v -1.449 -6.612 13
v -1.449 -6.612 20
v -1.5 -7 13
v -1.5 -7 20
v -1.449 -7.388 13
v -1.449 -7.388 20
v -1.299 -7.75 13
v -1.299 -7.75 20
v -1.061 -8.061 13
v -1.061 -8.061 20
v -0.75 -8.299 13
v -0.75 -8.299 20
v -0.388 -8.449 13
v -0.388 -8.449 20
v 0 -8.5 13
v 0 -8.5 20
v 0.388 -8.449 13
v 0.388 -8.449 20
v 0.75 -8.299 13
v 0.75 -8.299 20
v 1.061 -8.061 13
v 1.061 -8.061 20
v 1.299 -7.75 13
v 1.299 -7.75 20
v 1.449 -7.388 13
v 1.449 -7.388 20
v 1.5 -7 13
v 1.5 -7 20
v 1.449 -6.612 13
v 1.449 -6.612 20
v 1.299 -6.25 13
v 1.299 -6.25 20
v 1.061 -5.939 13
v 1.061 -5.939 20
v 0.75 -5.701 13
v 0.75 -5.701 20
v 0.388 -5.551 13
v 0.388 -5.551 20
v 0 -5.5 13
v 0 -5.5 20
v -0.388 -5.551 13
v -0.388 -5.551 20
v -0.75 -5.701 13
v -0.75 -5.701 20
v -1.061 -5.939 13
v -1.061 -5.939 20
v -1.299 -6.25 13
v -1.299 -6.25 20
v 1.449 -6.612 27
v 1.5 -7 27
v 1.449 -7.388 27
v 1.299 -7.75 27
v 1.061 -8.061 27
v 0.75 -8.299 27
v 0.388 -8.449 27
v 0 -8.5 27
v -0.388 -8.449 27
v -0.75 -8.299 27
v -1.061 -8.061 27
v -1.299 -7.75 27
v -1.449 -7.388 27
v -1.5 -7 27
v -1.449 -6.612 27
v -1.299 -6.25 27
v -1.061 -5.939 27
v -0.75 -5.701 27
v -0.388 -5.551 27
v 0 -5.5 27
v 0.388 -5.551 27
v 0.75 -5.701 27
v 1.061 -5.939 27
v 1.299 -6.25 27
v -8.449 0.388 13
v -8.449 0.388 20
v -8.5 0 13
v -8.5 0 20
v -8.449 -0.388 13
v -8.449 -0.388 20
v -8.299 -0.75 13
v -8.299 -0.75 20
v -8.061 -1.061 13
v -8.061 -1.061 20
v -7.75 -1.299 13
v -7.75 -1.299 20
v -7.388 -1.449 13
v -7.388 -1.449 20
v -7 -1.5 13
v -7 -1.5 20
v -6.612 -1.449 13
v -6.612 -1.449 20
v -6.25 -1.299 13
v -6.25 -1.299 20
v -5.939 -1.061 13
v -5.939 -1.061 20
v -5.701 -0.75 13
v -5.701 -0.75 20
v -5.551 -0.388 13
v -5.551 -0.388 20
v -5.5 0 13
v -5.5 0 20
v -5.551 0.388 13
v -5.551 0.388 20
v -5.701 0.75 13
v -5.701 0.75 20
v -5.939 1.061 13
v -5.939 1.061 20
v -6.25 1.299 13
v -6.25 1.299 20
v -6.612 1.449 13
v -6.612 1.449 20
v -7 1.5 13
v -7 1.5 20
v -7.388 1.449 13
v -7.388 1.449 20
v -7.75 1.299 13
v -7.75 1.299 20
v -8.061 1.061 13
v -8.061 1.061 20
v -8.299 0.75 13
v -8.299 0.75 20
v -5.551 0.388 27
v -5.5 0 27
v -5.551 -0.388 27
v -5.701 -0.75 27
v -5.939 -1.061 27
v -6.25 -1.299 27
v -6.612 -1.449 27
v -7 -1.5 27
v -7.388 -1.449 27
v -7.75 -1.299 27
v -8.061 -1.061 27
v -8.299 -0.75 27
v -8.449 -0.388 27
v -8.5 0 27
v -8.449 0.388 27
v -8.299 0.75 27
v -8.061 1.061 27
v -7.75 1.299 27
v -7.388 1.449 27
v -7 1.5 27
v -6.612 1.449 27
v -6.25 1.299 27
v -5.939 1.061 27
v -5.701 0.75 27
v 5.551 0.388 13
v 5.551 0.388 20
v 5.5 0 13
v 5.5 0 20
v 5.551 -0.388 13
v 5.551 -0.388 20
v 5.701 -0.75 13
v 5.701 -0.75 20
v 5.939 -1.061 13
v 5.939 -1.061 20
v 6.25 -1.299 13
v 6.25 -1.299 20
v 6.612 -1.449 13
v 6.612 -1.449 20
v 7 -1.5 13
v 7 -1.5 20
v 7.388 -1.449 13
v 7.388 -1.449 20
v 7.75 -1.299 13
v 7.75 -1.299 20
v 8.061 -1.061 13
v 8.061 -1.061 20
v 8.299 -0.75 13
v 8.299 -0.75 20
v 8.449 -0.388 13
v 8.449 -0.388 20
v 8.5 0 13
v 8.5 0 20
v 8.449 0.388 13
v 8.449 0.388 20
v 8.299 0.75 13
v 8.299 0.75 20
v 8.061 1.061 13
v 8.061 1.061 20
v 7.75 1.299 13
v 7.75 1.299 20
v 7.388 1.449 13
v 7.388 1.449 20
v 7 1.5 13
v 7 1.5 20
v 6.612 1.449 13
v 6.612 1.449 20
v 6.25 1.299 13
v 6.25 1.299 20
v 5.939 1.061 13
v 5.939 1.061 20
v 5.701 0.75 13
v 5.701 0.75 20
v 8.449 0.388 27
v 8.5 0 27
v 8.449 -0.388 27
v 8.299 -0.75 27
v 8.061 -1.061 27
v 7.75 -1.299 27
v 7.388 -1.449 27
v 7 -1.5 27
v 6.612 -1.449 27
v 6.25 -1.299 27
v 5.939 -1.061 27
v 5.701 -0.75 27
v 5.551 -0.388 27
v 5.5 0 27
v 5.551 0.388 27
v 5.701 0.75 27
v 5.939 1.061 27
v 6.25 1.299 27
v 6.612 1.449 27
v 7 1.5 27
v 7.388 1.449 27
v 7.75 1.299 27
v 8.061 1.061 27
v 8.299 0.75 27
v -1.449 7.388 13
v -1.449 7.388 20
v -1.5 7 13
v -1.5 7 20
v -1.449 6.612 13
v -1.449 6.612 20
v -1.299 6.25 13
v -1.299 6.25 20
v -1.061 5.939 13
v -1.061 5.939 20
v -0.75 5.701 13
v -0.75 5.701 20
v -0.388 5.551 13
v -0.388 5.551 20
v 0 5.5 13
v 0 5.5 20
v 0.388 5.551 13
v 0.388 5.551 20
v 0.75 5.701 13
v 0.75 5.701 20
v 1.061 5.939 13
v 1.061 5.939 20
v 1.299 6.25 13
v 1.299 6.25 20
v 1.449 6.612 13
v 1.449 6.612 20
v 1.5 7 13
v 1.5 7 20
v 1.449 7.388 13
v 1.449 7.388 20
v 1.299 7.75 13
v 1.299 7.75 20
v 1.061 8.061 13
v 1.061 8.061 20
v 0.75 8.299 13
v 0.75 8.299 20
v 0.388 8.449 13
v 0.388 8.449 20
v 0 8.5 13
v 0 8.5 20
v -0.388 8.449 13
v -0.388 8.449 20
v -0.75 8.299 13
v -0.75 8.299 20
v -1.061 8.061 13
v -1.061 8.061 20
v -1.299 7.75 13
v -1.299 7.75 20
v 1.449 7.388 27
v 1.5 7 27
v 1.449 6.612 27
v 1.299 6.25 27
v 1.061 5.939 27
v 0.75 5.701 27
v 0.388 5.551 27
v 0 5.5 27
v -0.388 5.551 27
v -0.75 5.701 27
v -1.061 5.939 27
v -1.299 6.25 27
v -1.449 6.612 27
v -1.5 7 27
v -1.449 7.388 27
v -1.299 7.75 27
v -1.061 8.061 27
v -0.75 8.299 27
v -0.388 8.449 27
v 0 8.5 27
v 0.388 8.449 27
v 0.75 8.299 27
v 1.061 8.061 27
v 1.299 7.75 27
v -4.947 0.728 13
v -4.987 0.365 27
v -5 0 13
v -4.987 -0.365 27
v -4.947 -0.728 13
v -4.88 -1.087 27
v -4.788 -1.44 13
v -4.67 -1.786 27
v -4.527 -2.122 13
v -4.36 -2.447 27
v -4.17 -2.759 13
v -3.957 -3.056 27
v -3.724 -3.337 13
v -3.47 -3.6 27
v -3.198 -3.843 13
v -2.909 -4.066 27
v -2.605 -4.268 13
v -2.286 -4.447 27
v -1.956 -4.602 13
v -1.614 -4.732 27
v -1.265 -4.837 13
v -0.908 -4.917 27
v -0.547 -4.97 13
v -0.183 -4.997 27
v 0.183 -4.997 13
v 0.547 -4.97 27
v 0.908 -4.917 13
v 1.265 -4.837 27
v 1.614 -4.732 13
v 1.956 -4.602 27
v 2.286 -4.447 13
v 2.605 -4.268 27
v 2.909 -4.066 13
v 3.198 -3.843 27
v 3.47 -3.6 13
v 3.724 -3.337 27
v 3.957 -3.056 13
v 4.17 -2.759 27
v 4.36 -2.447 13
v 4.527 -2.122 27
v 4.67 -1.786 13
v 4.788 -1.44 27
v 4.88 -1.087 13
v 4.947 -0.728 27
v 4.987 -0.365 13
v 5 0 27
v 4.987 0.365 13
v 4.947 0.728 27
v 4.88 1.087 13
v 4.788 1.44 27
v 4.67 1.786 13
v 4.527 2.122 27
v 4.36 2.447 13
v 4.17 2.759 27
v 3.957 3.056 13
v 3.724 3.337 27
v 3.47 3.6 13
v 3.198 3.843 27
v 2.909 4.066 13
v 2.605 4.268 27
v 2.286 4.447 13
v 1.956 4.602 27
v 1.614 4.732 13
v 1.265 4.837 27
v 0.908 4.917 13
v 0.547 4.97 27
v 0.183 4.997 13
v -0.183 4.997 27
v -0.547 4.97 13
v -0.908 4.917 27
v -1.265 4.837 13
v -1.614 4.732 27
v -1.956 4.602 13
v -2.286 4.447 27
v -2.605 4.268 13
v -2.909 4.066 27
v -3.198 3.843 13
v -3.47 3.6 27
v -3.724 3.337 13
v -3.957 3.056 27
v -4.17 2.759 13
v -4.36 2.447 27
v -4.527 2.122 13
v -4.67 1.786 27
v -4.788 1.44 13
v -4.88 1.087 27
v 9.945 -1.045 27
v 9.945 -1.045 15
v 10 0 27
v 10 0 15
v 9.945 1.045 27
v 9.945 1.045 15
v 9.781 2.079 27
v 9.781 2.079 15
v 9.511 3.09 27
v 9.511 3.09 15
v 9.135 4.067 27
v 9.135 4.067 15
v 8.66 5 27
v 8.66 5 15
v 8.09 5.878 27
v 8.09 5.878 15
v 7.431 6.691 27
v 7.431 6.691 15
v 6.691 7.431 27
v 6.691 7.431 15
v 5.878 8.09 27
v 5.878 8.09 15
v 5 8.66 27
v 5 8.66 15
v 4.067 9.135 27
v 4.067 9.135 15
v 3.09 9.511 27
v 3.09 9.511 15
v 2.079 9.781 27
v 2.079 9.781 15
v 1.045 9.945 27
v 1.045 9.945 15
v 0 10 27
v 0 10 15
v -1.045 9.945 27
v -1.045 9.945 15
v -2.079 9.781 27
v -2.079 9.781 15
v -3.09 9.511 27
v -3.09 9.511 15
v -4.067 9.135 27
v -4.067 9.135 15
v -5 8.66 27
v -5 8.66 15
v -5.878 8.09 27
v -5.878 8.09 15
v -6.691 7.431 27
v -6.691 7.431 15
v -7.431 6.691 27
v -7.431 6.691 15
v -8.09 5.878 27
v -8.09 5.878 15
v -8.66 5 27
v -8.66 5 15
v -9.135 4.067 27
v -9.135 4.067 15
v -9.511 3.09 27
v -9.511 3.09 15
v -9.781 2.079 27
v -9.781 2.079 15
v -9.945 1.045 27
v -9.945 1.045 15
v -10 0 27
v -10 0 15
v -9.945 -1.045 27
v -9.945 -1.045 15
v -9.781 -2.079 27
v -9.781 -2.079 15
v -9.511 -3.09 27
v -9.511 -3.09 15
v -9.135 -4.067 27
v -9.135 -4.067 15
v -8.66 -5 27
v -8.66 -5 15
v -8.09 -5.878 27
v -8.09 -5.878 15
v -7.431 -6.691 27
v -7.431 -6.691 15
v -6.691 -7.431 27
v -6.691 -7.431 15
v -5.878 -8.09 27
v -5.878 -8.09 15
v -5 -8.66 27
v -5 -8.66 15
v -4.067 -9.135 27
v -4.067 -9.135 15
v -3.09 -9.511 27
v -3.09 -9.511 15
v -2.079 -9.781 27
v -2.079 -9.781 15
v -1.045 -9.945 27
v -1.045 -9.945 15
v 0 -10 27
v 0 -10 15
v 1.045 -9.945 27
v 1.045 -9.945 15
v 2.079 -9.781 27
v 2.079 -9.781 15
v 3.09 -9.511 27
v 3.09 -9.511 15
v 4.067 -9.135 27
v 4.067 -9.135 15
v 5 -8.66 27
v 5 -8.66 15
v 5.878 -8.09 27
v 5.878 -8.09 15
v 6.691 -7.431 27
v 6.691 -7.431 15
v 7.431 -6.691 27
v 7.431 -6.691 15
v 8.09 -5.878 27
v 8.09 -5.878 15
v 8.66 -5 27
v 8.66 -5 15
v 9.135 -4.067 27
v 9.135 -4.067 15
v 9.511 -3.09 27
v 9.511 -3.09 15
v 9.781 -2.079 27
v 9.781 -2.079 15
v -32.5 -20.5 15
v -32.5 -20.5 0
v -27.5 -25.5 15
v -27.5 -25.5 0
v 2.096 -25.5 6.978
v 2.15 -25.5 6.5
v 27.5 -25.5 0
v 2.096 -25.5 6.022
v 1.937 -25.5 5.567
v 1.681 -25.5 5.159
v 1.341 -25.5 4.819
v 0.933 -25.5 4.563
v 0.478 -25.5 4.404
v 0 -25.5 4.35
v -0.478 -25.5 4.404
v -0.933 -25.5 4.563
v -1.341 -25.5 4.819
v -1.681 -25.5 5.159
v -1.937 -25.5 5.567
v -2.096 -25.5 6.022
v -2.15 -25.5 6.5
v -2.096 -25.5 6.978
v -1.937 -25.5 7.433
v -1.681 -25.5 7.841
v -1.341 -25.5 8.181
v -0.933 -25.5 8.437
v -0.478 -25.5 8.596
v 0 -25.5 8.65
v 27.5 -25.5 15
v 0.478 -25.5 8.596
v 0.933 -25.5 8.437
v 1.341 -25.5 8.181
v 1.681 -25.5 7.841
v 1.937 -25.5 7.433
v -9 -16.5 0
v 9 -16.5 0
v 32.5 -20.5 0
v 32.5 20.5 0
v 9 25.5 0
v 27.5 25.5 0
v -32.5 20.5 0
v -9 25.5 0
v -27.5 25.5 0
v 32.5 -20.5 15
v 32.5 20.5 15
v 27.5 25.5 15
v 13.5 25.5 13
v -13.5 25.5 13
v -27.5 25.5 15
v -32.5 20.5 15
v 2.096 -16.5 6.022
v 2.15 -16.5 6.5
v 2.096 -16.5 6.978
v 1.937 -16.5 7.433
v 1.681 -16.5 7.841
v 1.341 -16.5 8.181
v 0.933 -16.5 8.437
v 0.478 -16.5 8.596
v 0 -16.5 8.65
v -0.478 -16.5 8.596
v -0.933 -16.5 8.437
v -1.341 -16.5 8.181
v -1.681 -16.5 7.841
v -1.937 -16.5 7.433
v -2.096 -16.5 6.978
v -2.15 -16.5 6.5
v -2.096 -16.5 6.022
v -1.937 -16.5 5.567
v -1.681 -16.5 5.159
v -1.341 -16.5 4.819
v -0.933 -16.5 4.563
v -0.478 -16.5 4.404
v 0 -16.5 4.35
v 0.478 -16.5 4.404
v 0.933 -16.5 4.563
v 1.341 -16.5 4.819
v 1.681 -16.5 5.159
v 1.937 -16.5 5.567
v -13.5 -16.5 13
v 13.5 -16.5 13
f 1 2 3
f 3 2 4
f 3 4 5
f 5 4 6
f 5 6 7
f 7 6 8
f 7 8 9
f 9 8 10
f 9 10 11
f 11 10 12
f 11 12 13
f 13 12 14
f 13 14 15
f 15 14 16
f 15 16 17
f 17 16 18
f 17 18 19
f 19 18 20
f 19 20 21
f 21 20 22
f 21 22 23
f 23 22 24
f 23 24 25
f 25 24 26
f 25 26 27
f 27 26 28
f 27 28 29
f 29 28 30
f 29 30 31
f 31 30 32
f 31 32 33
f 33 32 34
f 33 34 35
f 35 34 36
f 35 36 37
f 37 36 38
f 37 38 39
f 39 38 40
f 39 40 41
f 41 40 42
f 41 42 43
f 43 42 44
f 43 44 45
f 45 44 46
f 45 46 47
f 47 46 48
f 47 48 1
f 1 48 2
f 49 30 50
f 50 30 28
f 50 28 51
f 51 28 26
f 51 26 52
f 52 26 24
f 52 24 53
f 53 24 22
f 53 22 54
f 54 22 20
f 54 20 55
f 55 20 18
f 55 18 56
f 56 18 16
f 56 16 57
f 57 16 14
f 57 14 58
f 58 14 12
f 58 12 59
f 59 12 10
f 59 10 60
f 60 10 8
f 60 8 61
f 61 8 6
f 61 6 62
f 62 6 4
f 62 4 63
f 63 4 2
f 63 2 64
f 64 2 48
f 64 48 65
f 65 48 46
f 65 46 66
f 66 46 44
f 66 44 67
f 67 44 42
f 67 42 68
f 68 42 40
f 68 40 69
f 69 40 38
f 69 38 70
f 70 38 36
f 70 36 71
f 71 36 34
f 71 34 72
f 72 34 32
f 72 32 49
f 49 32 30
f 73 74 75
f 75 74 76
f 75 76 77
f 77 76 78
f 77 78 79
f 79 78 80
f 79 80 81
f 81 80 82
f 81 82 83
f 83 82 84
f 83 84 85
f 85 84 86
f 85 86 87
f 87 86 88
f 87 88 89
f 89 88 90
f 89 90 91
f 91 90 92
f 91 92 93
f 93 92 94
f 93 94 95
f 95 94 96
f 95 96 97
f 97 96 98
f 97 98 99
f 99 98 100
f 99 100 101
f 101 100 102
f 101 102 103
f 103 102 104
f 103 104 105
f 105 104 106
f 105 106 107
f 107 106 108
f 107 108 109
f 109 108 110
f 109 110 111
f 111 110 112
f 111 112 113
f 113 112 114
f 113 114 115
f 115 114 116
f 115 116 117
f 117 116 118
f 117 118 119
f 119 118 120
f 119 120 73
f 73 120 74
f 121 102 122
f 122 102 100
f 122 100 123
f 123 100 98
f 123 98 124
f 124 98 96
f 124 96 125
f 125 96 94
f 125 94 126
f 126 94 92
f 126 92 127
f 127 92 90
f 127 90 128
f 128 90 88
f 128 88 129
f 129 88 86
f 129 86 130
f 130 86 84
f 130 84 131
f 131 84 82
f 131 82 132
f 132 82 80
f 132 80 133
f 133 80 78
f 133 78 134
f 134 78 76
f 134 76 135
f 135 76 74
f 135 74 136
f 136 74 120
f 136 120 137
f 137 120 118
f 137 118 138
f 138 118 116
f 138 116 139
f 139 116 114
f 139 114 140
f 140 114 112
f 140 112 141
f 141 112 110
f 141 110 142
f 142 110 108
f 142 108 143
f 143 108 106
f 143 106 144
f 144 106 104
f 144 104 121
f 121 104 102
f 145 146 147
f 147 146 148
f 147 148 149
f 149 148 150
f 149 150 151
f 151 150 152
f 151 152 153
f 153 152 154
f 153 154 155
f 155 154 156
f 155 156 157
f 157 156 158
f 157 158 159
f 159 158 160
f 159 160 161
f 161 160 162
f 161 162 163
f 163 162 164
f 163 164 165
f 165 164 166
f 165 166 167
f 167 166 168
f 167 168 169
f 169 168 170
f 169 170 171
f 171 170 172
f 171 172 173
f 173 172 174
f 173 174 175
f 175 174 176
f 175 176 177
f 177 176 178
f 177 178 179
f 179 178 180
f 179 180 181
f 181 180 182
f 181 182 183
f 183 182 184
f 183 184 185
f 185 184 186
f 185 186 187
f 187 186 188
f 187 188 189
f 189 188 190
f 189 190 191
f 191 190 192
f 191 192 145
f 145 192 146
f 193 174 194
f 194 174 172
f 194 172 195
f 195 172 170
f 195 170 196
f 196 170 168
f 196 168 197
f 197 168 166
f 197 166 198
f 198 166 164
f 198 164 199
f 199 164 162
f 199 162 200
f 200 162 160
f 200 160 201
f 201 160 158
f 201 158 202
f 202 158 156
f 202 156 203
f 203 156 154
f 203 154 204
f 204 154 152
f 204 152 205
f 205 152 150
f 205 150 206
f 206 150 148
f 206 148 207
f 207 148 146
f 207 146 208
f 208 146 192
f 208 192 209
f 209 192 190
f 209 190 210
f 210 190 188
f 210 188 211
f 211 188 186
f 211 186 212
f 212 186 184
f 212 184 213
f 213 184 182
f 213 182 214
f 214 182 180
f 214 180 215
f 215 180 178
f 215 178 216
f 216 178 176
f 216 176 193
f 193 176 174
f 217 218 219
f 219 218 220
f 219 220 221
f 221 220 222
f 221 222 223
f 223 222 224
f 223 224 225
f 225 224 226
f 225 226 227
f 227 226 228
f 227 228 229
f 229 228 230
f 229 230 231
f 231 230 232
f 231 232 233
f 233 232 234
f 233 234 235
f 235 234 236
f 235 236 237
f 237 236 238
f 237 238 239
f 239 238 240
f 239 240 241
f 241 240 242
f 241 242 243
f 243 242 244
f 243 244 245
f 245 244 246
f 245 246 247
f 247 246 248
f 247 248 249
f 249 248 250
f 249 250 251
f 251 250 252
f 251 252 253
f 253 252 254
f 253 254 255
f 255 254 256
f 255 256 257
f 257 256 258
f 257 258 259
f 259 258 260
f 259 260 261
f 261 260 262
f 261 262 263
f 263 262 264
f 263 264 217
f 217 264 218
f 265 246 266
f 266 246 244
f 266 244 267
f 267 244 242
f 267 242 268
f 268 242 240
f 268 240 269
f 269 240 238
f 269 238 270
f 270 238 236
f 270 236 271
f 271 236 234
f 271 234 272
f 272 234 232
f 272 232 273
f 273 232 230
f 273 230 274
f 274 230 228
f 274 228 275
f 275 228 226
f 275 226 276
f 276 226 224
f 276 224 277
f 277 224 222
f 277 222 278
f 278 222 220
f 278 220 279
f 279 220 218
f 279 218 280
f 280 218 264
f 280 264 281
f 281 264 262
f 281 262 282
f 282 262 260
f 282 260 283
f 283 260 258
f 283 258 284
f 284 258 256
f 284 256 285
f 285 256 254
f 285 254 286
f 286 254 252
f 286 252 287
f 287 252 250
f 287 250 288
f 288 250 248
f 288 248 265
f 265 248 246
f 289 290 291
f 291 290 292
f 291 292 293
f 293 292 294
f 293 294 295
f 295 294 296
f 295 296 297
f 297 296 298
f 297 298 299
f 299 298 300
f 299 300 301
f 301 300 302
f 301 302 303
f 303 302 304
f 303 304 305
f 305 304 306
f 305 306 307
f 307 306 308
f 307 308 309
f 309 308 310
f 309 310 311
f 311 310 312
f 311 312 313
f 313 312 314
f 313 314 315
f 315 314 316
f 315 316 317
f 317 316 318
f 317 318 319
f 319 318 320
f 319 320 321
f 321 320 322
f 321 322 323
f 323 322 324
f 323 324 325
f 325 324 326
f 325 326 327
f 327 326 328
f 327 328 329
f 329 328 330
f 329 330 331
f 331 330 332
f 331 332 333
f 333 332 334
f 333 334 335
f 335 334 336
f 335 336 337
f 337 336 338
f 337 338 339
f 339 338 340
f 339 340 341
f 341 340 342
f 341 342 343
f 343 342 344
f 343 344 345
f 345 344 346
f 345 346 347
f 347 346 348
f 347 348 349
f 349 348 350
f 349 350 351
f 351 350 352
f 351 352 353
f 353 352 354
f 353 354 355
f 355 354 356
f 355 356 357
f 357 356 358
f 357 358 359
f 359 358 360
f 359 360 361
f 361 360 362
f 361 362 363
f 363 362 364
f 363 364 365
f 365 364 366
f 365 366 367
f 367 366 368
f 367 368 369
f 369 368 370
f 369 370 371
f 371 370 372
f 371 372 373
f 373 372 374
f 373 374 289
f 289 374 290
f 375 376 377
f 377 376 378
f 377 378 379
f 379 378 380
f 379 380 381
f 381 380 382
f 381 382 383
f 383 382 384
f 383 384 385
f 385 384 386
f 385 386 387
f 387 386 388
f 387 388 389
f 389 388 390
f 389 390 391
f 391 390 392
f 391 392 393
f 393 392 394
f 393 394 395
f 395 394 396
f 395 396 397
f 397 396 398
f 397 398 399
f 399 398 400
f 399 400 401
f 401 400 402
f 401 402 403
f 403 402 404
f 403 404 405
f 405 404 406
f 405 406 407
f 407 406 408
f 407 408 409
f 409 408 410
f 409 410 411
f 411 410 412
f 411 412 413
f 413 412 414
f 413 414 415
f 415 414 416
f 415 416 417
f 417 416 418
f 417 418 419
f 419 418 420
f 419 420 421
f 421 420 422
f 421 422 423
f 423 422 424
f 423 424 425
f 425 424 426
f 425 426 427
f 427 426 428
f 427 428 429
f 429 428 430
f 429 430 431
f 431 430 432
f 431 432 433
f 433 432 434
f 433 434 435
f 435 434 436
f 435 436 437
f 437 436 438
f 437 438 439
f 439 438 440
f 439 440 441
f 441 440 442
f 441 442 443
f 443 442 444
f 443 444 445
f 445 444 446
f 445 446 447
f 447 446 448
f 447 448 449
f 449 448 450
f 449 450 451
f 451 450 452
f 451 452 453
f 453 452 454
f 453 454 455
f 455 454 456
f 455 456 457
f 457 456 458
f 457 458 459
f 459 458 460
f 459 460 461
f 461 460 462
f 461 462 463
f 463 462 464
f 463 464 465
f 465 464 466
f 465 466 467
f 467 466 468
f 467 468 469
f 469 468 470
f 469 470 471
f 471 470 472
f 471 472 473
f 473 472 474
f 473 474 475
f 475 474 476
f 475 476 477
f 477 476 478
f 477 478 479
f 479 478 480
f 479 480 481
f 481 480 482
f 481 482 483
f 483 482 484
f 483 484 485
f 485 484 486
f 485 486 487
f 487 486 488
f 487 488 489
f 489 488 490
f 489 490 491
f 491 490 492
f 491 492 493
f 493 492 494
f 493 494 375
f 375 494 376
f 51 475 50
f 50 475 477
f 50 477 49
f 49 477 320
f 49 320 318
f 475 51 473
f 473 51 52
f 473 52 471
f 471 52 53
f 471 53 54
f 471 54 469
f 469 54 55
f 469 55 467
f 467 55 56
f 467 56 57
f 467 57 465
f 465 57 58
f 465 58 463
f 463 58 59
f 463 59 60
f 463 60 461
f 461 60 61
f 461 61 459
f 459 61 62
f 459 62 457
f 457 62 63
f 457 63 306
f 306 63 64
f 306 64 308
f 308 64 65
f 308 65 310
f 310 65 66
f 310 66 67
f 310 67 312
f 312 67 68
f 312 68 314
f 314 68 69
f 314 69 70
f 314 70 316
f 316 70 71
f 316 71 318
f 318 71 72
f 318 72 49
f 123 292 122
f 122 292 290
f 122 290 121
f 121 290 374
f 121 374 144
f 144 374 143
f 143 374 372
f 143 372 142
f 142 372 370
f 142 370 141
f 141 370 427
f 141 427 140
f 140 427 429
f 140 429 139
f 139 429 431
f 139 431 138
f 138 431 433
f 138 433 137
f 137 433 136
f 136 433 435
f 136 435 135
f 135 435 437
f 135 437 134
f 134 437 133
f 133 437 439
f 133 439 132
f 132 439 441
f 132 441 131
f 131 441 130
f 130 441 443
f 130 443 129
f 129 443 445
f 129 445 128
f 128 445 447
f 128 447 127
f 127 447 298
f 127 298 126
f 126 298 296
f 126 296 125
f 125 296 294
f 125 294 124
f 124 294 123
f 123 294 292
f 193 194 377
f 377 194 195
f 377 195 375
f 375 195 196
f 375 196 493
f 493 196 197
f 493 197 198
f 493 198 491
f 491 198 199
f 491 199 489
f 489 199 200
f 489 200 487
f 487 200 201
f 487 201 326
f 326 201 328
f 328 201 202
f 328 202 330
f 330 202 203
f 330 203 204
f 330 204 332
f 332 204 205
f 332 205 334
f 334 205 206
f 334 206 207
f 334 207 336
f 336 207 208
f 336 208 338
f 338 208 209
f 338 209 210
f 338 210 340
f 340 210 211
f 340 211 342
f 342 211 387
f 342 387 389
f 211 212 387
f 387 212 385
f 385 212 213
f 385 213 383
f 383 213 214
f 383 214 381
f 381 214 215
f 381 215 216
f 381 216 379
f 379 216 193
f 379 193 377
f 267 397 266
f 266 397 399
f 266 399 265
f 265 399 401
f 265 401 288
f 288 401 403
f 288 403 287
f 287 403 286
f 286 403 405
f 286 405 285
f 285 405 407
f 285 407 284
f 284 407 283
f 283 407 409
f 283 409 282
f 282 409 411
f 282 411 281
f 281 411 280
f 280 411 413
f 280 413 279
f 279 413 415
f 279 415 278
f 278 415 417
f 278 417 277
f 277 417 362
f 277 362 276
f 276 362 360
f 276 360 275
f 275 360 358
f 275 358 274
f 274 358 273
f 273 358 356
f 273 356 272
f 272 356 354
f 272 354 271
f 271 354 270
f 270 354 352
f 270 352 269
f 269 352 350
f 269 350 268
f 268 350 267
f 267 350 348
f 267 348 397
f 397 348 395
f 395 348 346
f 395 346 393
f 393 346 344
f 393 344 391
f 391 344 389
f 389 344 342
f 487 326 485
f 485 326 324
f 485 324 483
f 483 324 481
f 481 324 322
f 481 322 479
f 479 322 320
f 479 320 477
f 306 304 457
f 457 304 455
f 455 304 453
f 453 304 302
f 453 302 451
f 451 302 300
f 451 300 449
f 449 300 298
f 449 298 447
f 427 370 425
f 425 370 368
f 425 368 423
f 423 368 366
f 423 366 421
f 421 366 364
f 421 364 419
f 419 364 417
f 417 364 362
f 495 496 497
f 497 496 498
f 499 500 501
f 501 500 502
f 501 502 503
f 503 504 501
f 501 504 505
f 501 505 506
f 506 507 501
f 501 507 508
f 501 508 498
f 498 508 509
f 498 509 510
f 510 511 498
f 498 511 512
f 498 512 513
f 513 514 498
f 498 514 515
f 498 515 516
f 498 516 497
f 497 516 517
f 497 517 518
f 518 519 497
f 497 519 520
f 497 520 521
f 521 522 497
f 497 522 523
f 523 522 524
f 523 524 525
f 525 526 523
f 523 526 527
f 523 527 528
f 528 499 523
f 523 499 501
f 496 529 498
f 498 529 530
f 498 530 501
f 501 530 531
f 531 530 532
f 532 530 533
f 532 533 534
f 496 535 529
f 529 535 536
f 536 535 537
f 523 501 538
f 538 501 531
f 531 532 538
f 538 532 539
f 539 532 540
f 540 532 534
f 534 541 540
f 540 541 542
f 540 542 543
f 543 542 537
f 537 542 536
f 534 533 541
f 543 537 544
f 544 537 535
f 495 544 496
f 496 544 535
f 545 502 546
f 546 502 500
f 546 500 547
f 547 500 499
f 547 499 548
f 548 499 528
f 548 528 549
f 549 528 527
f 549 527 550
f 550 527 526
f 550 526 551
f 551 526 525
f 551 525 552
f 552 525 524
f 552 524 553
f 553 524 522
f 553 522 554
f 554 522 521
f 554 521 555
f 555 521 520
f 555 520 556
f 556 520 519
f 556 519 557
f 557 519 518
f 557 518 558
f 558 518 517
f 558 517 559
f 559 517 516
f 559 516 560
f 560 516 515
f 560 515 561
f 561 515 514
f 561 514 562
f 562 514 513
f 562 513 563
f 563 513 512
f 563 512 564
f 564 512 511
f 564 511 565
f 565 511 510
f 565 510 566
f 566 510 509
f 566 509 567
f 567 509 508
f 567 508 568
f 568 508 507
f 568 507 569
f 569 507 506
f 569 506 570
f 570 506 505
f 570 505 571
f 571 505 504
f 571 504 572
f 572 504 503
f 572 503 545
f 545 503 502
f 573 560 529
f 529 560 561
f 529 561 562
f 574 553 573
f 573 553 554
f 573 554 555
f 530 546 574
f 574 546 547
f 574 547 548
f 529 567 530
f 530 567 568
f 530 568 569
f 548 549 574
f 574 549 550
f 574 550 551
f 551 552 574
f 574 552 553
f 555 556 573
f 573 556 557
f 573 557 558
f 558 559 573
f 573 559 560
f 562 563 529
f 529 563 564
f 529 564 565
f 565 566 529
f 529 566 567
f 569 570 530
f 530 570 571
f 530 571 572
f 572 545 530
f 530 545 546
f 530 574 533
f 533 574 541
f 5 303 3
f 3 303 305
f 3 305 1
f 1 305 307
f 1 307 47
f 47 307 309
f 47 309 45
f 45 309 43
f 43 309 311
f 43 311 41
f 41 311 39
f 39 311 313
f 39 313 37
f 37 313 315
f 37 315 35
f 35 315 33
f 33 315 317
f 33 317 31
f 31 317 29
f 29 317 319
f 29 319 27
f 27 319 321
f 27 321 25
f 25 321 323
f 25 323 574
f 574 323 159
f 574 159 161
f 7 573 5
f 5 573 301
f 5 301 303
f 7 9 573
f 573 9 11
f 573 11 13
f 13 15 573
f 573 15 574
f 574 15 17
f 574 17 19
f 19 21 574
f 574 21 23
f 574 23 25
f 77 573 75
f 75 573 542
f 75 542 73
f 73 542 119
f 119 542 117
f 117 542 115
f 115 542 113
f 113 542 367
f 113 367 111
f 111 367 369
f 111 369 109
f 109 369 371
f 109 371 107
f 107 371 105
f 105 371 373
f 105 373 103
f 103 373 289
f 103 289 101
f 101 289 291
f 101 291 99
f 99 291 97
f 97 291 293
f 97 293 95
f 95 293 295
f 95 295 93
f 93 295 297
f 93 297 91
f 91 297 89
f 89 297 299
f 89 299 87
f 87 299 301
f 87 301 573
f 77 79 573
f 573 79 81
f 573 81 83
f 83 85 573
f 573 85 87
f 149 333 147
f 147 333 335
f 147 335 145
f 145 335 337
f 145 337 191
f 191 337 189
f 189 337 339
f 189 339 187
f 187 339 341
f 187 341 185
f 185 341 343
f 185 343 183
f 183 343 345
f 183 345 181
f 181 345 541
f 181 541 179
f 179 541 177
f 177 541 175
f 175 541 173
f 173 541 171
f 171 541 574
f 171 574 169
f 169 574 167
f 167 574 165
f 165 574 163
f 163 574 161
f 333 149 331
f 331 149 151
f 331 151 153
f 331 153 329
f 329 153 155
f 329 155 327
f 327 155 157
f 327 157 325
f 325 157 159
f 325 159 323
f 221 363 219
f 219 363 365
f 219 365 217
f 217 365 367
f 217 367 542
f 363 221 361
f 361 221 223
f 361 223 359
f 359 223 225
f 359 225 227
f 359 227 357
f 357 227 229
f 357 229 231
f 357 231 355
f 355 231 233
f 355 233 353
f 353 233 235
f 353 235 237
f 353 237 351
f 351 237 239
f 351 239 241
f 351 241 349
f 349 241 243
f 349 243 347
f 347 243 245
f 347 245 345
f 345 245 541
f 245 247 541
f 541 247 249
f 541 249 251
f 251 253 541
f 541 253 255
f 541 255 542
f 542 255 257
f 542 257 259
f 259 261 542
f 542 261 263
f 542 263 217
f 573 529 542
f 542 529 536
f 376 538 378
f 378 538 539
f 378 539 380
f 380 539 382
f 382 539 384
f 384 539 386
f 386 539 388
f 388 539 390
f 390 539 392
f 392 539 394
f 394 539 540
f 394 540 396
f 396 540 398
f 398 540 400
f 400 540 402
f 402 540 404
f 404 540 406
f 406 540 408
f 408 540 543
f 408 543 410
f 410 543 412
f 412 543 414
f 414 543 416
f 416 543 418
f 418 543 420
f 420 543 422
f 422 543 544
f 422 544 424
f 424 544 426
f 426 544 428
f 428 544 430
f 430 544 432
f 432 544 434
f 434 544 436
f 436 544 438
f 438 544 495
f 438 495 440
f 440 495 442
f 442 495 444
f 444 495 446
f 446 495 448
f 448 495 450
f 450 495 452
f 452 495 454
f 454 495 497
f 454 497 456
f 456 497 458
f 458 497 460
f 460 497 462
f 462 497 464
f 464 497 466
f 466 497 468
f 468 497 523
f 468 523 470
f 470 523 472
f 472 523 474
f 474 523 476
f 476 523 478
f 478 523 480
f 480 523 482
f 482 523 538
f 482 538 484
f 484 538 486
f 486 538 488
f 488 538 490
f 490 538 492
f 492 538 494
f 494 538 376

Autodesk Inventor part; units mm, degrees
ref_plane "YZ Plane" through (0, 0, 0) normal (1, 0, 0) x (0, 1, 0)
ref_plane "XZ Plane" through (0, 0, 0) normal (0, 1, 0) x (-1, 0, 0)
ref_plane "XY Plane" through (0, 0, 0) normal (0, 0, 1) x (1, 0, 0)
sketch "Skizze1" plane through (0, 0, 0) normal (0, 0, 1) x (1, 0, 0)
  line L0 (-32.5, 25.5) -> (32.5, 25.5)
  line L1 (32.5, 25.5) -> (32.5, -25.5)
  line L2 (32.5, -25.5) -> (-32.5, -25.5)
  line L3 (-32.5, -25.5) -> (-32.5, 25.5)
  line L4 (0, -35.7) -> (0, 35.7) projected
  line L5 (-45.5, 0) -> (45.5, 0) projected
  point P0 (0, 0)
  point P1 (0, 25.5)
  point P2 (32.5, 0)
  dimension "d0" = 51
  dimension "d1" = 65
extrude "Extrusion1" add sketch "Skizze1" along normal blind 15
sketch "Skizze2" plane through (-32.5, -25.5, 0) normal (0, -1, 0) x (1, 0, 0)
  line L0 (23.5, 0) -> (41.5, 0)
  line L1 (41.5, 0) -> (46, 13)
  line L2 (46, 13) -> (19, 13)
  line L3 (19, 13) -> (23.5, 0)
  line L4 (0, 0) -> (65, 0) projected
  line L5 (0, 15) -> (65, 15) construction
  circle A0 centre (32.5, 6.5) radius 2.15
  line L6 (32.5, 0) -> (32.5, 13) construction
  point P0 (32.5, 0)
  point P1 (32.5, 6.5)
  dimension "d4" = 18
  dimension "d5" = 27
  dimension "d6" = 13
  dimension "d20" = 4.3
extrude "Extrusion2" cut sketch "Skizze2" against normal through all contours L3 L2 L1 L0 | A0
extrude "Extrusion5" add sketch "Skizze2" against normal blind 9
chamfer "Fase1" distance 5 angle 45 4 edges at (-32.5, 25.5, 7.5) (32.5, 25.5, 7.5) (32.5, -25.5, 7.5) (-32.5, -25.5, 7.5)
sketch "Skizze3" plane through (0, 0, 15) normal (0, 0, 1) x (1, 0, 0)
  circle A0 centre (0, 0) radius 10
  dimension "d12" = 20
extrude "Extrusion3" add sketch "Skizze3" along normal blind 12
sketch "Skizze4" plane through (0, 0, 27) normal (0, 0, 1) x (1, 0, 0)
  circle A0 centre (0, 0) radius 5
  dimension "d15" = 10
extrude "Extrusion4" cut sketch "Skizze4" against normal through all
sketch "Skizze5" plane through (0, 0, 27) normal (0, 0, 1) x (1, 0, 0)
  circle A0 centre (7, 0) radius 1.5
  line L0 (-45.5, 0) -> (45.5, 0) projected
  circle A1 centre (0, 0) radius 5 projected
  circle A2 centre (0, 0) radius 10 projected
  circle A3 centre (0, 7) radius 1.5
  circle A4 centre (-7, 0) radius 1.5
  circle A5 centre (0, -7) radius 1.5
  dimension "d21" = 3
  dimension "d22" = 7
  dimension "d25" = 360
extrude "Extrusion6" cut sketch "Skizze5" against normal through all contours L0 A0 | A0 L0 | A4 L0 | L0 A4 | A3 | A5
sketch "Skizze6" plane through (0, 0, 27) normal (0, 0, 1) x (1, 0, 0)
  line L0 (15.25, -15.25) -> (-15.25, -15.25)
  line L1 (-15.25, -15.25) -> (-15.25, 15.25)
  line L2 (-15.25, 15.25) -> (15.25, 15.25)
  line L3 (15.25, 15.25) -> (15.25, -15.25)
  line L4 (15.25, -15.25) -> (-15.25, 15.25) construction
  line L5 (-15.25, -15.25) -> (15.25, 15.25) construction
  circle A0 centre (15.25, 15.25) radius 2
  circle A1 centre (-15.25, 15.25) radius 2
  circle A2 centre (-15.25, -15.25) radius 2
  circle A3 centre (15.25, -15.25) radius 2
  point P0 (0, 0)
  dimension "d29" = 30.5
  dimension "d30" = 4
extrude "Extrusion7" [suppressed]
properties part number "_3D-Druck"
